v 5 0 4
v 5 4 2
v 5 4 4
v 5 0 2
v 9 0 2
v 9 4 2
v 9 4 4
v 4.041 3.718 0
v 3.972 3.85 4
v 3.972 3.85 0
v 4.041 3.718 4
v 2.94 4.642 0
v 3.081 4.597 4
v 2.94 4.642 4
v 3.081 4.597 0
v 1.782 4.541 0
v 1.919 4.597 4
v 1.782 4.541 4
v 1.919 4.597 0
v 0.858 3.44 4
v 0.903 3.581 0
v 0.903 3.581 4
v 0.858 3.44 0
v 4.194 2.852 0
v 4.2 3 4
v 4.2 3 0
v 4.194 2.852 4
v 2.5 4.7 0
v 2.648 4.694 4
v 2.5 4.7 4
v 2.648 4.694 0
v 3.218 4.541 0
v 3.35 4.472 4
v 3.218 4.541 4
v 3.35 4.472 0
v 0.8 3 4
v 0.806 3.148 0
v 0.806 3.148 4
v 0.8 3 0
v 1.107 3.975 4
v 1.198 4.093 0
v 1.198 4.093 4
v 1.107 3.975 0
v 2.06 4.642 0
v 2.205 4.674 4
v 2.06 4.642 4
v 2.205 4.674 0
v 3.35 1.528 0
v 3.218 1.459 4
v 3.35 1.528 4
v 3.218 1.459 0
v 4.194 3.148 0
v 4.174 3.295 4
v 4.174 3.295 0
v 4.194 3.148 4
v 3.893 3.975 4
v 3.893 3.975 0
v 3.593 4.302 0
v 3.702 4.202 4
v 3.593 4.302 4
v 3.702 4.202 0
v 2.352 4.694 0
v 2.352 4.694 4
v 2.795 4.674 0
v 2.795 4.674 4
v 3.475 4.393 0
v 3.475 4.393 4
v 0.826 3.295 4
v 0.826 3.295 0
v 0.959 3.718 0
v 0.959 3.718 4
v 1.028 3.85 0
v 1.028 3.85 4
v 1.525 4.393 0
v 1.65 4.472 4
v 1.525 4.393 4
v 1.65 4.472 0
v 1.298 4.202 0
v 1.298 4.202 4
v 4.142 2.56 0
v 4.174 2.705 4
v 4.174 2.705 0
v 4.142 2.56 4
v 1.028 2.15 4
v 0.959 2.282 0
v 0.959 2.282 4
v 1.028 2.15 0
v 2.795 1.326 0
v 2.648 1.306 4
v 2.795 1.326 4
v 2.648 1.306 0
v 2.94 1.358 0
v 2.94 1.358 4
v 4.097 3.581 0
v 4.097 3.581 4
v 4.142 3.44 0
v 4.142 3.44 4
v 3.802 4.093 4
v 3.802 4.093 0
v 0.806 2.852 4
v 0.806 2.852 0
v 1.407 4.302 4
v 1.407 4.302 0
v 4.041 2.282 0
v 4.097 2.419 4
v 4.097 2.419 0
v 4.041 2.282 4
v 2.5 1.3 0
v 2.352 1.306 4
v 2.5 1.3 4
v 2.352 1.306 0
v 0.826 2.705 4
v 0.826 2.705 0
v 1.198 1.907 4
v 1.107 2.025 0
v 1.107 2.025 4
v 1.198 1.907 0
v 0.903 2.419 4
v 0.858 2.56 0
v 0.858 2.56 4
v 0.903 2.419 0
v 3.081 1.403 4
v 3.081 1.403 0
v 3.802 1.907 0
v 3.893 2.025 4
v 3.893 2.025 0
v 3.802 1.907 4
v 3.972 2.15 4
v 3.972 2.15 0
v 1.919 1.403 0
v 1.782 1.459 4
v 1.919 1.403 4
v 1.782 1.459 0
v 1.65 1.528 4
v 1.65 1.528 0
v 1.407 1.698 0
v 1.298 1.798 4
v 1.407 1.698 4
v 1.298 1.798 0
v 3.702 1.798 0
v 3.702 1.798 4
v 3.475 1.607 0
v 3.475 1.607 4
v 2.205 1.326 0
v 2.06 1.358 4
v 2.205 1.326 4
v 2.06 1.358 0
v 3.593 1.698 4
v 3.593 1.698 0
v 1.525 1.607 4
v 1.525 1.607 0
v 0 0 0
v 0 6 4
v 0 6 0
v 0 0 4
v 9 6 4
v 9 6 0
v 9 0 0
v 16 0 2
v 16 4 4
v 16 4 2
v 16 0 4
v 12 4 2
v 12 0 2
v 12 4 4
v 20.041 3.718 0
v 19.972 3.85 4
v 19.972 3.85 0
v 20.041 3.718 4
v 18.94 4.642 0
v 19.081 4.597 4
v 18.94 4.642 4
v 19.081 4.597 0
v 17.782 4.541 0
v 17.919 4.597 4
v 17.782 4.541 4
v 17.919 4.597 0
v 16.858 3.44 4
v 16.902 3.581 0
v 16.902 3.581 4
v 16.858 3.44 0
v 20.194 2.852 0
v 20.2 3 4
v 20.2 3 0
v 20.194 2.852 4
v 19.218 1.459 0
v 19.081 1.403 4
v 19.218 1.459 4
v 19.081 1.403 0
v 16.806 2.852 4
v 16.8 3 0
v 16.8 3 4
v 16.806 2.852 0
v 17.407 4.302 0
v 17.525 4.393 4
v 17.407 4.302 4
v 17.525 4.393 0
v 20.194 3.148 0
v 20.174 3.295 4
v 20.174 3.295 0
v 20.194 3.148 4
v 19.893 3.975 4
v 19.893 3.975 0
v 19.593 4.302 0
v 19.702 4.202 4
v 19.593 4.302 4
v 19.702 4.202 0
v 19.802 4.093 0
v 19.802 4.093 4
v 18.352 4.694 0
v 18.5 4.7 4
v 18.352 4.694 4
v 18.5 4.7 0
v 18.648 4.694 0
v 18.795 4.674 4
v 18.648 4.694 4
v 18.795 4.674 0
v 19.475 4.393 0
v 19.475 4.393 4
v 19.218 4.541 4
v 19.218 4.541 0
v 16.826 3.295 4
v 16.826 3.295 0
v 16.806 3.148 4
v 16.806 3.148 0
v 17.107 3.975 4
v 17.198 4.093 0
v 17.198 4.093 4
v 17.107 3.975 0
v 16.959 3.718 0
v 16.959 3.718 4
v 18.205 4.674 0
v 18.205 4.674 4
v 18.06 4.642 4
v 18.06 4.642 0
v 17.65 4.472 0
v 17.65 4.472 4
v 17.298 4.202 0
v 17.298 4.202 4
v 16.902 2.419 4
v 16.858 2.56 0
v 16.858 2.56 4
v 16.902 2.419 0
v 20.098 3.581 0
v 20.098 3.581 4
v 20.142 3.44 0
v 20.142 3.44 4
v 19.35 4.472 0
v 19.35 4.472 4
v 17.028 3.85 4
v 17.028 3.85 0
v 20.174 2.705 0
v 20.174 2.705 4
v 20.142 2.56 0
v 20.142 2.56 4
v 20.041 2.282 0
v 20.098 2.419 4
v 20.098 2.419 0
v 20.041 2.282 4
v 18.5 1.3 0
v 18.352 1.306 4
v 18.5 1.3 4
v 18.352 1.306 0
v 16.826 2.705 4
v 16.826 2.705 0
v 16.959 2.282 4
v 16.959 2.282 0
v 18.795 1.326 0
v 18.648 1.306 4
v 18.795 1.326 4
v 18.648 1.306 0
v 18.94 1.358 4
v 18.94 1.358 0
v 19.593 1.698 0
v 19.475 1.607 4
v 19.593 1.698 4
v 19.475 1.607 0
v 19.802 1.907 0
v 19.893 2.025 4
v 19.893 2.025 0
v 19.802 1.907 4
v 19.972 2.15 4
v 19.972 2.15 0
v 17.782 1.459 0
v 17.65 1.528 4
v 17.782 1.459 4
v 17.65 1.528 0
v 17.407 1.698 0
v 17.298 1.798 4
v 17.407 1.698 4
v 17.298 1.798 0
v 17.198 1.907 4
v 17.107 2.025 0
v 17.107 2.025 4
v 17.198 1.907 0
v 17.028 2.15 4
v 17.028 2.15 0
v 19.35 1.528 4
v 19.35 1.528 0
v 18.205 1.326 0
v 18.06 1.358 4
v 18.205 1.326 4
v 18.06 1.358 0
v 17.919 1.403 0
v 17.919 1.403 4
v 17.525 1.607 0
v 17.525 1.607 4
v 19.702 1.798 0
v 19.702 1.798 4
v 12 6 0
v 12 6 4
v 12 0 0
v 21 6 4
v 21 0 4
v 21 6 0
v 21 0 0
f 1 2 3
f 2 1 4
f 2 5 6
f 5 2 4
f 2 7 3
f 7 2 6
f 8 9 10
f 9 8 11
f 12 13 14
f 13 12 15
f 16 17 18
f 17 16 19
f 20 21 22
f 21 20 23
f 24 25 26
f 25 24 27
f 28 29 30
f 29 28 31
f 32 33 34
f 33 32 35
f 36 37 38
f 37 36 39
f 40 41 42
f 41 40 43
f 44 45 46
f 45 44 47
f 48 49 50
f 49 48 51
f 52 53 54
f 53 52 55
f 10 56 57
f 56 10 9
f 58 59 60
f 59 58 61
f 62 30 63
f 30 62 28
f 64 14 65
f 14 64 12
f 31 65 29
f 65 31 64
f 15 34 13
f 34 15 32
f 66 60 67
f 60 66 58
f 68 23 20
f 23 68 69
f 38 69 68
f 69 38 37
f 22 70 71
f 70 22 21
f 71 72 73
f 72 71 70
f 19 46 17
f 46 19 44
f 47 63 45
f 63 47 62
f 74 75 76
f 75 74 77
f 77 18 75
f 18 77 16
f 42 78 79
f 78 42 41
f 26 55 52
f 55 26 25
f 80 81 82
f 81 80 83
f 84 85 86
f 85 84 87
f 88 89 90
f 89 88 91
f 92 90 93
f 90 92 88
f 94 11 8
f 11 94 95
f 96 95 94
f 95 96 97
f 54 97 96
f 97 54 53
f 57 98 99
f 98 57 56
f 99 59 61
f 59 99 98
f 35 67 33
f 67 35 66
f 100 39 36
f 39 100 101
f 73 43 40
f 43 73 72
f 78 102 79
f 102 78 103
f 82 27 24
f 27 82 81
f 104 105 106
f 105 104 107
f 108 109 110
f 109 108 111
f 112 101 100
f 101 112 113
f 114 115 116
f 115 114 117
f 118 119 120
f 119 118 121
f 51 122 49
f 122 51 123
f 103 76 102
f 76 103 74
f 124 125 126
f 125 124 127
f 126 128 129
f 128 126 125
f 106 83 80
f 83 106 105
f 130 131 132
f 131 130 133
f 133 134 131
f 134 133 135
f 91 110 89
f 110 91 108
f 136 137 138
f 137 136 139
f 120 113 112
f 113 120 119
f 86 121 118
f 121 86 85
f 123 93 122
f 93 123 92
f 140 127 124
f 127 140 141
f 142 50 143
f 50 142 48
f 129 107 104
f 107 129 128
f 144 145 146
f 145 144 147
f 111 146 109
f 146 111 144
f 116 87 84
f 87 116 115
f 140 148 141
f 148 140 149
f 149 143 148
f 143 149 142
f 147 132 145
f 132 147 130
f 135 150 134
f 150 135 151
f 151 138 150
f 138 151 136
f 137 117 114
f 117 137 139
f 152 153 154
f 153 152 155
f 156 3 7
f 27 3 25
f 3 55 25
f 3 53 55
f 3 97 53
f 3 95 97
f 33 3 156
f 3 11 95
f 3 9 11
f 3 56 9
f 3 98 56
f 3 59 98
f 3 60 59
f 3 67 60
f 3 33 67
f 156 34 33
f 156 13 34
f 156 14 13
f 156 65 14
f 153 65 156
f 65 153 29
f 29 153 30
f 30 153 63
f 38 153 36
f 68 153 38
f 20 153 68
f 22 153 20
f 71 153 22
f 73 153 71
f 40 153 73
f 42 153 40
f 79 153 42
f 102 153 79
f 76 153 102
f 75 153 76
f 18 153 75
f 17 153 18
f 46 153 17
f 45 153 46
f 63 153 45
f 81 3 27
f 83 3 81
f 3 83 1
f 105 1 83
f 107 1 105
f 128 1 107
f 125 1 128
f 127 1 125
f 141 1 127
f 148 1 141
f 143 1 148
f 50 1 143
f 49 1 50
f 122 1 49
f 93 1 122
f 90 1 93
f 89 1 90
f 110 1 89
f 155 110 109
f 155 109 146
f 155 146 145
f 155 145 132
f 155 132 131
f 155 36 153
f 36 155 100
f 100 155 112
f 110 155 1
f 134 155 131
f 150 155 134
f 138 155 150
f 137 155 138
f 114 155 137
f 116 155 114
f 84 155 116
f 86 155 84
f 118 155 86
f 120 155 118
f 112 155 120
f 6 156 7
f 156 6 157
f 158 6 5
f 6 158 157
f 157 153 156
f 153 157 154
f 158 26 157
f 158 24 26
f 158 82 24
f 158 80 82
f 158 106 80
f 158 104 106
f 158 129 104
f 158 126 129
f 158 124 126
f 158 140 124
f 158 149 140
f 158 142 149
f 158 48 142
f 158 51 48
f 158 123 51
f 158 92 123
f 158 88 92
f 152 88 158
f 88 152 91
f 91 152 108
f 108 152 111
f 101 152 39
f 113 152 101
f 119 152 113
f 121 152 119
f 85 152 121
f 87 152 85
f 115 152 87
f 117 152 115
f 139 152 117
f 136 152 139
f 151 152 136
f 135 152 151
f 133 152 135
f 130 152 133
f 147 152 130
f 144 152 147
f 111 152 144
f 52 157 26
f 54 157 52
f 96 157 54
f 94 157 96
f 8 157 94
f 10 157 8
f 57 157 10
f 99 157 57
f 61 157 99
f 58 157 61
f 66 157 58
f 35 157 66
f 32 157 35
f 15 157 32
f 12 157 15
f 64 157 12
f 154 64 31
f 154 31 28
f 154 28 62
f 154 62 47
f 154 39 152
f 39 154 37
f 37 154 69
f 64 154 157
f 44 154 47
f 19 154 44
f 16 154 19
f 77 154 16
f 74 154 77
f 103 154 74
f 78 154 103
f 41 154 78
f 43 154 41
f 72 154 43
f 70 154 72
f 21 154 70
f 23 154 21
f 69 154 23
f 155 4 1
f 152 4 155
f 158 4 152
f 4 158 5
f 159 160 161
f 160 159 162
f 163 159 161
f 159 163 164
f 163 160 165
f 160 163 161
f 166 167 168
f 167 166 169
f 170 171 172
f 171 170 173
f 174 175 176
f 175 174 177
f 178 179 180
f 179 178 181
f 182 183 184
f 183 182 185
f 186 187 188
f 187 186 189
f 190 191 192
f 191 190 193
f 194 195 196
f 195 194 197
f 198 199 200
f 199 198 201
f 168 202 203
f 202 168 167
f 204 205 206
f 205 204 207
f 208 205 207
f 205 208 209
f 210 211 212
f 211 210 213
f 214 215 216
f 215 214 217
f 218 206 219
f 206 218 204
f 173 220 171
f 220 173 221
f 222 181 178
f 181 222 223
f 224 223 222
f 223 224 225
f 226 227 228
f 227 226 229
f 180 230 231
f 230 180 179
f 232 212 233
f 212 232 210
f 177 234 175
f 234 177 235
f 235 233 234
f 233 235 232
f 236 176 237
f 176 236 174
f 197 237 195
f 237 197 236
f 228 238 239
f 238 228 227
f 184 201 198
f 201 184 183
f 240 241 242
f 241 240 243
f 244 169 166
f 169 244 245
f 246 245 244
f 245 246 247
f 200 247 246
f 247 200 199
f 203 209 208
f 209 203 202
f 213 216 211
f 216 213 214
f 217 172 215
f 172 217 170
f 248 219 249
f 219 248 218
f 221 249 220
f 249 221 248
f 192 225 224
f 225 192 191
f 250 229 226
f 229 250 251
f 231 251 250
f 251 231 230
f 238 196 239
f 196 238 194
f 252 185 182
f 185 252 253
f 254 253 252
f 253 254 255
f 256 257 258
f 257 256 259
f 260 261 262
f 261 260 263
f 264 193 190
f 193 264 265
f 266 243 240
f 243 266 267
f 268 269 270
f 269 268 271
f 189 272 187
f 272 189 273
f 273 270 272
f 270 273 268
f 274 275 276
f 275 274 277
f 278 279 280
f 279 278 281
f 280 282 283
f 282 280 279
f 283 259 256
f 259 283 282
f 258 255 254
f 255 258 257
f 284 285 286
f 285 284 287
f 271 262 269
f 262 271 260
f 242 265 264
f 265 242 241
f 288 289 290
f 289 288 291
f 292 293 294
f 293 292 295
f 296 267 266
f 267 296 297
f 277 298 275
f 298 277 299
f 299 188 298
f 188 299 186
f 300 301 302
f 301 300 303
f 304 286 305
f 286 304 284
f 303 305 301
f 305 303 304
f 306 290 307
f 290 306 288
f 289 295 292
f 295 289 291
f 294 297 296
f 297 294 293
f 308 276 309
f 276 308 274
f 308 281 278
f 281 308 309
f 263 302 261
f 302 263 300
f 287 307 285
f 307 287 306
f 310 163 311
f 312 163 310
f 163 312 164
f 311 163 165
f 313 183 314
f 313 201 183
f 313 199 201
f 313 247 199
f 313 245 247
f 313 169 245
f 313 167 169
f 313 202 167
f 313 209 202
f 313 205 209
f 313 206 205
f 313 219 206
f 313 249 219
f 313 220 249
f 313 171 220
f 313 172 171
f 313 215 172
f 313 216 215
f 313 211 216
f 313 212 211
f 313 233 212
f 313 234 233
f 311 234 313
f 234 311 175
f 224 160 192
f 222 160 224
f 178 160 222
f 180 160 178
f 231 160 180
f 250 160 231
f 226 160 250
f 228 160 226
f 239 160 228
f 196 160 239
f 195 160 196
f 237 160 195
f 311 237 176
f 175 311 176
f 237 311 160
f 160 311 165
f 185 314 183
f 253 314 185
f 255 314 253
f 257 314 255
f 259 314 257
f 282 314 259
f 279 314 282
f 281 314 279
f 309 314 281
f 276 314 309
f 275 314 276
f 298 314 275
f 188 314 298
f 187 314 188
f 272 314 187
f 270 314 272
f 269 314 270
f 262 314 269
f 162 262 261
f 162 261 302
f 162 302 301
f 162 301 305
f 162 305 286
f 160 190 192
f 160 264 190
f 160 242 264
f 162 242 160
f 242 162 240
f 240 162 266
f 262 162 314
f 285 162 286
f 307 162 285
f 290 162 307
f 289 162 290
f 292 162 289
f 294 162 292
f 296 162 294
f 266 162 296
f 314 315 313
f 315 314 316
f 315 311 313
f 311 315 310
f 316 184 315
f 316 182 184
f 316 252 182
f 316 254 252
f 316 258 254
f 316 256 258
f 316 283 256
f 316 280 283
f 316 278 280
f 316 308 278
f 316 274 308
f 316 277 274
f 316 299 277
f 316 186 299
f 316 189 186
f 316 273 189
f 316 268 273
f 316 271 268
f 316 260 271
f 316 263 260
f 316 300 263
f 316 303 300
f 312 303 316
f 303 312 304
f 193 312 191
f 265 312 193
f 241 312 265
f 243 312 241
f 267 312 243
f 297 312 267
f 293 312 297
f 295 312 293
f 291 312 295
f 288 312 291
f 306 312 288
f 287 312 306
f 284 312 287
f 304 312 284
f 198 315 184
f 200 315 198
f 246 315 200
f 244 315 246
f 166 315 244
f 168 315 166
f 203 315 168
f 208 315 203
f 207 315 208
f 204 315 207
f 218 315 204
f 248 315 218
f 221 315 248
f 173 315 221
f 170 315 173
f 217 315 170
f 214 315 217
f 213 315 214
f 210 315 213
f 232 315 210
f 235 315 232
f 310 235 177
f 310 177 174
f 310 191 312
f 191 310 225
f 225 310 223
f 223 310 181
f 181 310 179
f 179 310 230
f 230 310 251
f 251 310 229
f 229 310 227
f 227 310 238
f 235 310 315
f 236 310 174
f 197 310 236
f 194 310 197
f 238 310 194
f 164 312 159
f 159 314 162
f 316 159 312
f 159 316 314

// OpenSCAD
$fa=5; $fs=0.1;

difference(){
    
    cube([9, 6, 4]);
    
    union()
    {
            translate([5, -0.01, 2]) cube([4.01, 4.01, 2.01]);
            translate([2.5, 3, 2]) cylinder(h=4.01, r=1.7, center=true);
    }
}


translate([12, 0, 0])

difference(){
    
    cube([9, 6, 4]);
    
    union()
    {
            translate([-0.01, -0.01, 2]) cube([4.01, 4.01, 2.01]);
            translate([6.5, 3, 2]) cylinder(h=4.01, r=1.7, center=true);
    }
}
